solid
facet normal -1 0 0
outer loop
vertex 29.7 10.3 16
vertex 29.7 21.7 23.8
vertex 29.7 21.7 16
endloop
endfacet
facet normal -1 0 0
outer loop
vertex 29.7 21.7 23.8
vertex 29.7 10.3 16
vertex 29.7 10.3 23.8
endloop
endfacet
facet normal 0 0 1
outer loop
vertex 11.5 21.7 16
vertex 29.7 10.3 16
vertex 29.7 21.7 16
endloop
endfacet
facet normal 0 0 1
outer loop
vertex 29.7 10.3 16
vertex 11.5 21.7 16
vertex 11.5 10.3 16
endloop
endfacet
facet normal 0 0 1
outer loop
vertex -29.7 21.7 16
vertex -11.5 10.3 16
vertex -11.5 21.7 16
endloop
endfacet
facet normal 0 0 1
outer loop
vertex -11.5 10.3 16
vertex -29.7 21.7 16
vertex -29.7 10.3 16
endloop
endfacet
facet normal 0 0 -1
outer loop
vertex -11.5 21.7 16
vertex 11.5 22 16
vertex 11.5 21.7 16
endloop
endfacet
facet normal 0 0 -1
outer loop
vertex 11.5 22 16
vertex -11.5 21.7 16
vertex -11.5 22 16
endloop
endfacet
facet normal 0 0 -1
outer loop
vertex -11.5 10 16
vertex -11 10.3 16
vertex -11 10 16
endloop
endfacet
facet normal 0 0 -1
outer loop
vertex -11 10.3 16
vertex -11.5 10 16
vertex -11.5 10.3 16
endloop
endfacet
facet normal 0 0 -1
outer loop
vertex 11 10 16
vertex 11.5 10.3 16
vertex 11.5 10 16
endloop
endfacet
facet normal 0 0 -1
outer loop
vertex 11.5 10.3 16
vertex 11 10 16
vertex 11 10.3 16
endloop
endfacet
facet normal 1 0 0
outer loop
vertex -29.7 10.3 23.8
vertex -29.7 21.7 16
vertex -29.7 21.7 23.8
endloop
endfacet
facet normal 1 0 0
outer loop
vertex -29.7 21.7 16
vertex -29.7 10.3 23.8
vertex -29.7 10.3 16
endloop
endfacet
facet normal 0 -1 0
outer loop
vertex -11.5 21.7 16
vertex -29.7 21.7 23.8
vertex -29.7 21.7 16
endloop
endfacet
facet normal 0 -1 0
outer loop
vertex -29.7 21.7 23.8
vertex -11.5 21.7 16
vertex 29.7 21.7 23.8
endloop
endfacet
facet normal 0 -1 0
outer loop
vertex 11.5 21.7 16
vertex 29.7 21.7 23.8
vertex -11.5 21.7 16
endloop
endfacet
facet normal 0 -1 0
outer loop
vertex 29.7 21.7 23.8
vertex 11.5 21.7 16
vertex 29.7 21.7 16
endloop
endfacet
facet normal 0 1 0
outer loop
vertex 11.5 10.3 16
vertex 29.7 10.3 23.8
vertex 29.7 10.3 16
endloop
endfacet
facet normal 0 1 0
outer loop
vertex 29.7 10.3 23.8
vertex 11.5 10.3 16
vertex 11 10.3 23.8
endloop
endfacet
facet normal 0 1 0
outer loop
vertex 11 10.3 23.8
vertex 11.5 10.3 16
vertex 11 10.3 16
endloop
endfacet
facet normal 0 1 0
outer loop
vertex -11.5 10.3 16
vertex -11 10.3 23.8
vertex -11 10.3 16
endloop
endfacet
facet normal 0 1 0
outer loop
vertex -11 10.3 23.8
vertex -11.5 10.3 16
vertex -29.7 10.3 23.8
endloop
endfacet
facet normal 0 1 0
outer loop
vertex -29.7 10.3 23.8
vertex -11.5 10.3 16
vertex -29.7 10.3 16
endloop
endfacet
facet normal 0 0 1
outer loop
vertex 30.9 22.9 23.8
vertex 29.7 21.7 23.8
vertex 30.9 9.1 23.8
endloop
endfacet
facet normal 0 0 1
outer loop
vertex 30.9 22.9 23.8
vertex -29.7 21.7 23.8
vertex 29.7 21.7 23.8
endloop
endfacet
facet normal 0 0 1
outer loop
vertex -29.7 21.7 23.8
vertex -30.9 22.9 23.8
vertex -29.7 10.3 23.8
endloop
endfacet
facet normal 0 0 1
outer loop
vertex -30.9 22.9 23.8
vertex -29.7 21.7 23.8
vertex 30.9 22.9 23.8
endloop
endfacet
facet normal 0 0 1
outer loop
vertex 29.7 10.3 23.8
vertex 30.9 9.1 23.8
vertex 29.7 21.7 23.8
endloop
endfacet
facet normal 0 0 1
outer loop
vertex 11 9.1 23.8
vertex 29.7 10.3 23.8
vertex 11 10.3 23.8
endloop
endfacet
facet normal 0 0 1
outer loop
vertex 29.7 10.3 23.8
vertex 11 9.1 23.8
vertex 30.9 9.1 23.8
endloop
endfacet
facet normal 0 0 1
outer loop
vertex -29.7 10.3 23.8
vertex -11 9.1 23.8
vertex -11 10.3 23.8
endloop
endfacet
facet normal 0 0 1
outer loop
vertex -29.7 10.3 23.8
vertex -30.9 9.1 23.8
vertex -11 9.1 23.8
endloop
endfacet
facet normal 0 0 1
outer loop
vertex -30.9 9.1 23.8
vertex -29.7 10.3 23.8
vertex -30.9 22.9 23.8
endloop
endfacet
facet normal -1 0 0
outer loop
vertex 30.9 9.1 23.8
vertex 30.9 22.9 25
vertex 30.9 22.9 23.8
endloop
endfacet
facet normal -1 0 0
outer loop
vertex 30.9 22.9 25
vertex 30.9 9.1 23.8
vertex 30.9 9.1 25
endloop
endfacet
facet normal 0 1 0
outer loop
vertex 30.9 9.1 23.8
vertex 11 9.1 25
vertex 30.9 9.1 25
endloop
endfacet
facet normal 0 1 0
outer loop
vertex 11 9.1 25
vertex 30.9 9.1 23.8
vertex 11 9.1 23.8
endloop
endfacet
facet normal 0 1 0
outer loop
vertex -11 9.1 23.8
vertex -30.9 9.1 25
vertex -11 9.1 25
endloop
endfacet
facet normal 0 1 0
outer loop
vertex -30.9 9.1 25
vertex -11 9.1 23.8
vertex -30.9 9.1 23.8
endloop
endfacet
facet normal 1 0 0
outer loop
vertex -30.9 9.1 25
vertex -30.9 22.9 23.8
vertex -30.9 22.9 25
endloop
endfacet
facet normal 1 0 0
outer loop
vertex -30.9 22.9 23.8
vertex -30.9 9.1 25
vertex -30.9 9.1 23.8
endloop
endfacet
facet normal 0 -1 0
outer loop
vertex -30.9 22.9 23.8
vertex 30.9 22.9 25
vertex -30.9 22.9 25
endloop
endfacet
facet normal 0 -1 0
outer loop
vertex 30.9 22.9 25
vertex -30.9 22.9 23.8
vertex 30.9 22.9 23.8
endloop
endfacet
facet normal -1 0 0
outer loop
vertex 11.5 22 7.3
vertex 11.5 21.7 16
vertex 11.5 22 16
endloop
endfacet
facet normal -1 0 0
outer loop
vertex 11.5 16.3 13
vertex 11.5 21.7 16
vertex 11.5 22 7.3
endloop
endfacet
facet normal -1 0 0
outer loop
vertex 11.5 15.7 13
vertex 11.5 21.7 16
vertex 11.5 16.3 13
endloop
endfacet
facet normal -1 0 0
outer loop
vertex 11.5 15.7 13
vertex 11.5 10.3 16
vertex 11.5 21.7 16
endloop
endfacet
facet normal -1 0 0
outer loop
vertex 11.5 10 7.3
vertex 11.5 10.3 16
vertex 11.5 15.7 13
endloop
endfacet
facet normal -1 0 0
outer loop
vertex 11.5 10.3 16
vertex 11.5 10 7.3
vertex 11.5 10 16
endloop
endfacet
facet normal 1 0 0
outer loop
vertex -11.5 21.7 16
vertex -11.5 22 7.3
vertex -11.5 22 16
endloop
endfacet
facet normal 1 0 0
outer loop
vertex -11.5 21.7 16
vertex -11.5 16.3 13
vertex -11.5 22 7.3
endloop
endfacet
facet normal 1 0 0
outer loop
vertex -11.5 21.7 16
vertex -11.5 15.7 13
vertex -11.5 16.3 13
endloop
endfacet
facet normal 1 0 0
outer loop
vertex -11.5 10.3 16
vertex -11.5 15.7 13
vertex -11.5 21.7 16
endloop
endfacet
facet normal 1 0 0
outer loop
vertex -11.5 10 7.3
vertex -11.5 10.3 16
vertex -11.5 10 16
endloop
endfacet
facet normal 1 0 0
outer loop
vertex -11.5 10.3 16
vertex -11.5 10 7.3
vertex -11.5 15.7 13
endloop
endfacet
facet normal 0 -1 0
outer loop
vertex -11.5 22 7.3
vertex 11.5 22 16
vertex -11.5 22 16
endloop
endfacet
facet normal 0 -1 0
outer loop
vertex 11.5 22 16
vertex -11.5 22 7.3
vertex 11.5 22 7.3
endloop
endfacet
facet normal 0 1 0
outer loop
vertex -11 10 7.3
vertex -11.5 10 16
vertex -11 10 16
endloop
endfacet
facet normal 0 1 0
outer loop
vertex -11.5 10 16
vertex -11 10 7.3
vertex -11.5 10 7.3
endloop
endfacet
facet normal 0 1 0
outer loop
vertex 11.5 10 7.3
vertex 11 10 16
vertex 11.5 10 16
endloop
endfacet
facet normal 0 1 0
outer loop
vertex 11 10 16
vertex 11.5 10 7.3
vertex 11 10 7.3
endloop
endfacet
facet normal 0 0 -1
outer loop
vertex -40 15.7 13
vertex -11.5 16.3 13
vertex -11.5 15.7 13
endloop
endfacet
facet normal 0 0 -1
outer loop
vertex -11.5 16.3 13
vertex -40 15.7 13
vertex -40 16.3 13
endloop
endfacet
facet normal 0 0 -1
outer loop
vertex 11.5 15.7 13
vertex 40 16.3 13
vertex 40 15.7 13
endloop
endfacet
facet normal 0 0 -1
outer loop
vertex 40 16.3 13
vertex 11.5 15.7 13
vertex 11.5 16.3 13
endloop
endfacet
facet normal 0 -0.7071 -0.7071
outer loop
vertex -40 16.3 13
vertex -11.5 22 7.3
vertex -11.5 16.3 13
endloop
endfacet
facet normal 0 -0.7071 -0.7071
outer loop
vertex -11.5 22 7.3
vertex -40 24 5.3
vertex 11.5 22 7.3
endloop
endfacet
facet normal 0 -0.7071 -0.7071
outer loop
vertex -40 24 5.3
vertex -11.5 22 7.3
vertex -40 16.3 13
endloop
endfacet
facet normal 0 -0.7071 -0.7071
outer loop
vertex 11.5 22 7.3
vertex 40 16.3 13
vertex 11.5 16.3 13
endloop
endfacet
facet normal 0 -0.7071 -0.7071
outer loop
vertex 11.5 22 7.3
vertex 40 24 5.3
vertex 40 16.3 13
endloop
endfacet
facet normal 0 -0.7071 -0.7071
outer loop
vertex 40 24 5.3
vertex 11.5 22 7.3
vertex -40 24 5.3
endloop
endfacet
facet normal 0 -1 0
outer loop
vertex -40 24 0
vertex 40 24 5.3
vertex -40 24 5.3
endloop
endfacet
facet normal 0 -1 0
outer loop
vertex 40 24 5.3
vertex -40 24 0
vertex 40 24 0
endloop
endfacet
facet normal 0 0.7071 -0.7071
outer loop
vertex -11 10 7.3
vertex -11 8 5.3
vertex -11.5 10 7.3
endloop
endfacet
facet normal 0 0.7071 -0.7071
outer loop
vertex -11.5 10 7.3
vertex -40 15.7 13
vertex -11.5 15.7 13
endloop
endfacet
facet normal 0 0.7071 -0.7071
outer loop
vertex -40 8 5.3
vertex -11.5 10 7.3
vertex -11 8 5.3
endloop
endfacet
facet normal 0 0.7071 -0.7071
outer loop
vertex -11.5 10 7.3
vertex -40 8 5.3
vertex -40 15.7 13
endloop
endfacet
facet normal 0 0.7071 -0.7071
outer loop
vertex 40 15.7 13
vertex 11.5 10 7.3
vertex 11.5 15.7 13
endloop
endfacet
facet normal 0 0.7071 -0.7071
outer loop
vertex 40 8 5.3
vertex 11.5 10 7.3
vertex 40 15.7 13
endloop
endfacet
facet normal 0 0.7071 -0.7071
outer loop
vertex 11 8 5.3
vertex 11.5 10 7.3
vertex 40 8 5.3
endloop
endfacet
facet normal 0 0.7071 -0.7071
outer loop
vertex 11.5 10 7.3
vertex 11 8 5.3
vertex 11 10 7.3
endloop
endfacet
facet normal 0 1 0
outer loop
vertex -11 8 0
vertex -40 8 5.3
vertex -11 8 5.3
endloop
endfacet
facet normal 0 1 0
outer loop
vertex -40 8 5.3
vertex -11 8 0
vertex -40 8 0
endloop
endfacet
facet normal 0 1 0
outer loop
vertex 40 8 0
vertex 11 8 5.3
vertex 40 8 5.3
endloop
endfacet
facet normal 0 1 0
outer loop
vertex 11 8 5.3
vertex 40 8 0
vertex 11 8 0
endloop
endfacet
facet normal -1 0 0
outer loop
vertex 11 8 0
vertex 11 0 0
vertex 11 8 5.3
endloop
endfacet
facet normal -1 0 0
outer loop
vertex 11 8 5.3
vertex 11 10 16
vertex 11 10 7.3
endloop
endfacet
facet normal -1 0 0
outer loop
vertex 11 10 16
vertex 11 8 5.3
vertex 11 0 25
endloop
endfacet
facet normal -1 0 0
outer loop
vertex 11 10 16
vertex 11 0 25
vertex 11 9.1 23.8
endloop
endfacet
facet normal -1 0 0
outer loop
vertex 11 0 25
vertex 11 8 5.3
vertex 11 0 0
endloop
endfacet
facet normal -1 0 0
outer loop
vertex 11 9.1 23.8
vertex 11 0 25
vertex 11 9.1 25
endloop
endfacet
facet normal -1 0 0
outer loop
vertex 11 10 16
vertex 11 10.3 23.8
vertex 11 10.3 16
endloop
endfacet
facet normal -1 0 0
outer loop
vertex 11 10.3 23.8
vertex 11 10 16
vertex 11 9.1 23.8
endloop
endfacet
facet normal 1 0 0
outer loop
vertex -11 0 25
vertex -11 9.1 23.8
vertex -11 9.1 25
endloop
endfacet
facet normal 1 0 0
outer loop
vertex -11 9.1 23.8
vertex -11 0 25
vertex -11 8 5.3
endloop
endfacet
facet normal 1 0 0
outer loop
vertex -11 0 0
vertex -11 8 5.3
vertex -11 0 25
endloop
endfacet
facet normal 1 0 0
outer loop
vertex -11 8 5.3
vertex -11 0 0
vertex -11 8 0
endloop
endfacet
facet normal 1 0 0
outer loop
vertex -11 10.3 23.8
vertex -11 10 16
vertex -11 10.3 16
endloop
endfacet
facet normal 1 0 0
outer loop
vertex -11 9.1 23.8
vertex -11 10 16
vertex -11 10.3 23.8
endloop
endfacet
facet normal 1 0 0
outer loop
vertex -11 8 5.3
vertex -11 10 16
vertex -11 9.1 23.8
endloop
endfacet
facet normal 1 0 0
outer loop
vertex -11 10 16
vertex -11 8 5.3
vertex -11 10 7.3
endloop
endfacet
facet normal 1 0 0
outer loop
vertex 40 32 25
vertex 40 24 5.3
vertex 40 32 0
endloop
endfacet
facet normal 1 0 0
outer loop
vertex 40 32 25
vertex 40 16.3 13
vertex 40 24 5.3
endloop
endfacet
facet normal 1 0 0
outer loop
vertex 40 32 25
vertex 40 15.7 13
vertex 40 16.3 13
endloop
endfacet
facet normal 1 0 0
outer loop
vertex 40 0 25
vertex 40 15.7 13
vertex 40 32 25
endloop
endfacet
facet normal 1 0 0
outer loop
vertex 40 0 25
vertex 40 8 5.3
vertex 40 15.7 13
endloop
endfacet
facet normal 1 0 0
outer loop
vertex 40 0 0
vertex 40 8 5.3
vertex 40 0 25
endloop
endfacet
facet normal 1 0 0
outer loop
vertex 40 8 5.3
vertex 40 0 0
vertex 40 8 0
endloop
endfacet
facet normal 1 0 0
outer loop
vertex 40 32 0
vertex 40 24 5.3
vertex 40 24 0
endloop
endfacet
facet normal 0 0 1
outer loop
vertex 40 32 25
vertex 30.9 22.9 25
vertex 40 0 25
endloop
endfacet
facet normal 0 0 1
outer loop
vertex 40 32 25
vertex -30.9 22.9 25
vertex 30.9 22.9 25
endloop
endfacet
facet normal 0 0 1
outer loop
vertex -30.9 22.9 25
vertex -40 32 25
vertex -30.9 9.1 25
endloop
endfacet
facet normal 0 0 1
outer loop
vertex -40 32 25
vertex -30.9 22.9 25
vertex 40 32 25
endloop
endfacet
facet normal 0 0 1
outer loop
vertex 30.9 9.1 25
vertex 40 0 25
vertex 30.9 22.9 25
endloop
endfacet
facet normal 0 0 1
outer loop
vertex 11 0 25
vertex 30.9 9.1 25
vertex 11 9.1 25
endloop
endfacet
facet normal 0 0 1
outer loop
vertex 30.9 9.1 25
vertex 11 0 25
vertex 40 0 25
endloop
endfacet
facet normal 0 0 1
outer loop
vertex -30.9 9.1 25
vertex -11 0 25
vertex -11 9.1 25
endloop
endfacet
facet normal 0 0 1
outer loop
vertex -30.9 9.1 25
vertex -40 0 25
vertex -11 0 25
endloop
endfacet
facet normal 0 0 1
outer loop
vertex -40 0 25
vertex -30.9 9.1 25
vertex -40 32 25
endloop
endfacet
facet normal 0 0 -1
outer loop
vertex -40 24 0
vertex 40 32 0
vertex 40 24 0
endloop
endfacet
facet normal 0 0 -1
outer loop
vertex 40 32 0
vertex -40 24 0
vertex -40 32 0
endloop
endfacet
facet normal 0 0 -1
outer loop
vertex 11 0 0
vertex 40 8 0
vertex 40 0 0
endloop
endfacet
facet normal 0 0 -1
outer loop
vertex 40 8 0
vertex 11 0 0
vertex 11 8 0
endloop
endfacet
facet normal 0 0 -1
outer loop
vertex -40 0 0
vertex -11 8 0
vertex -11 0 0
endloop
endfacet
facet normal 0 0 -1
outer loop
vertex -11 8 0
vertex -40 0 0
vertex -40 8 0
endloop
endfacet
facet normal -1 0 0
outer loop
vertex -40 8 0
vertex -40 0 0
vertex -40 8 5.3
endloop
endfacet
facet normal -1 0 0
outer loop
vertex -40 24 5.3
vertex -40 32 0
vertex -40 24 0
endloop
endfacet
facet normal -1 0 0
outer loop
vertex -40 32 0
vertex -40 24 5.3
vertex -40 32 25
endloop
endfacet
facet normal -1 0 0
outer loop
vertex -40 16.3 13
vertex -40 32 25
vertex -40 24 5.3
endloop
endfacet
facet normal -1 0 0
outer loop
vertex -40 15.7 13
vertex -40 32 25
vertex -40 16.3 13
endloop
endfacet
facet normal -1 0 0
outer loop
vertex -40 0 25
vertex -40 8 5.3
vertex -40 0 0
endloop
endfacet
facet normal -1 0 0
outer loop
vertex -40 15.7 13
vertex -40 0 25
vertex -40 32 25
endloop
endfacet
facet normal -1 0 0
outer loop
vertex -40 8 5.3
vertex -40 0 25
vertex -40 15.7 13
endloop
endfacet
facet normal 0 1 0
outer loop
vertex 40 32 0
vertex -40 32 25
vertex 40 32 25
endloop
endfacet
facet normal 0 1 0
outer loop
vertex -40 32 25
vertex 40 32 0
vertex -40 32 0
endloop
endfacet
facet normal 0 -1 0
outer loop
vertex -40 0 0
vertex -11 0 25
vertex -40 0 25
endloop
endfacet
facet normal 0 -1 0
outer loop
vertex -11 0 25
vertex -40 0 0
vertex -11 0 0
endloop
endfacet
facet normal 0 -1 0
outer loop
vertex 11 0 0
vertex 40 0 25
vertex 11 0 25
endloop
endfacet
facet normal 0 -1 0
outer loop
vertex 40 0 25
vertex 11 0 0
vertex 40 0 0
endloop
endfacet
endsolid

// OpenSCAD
// ============================================================================
//  Parametric desk stand for a flat USB hub  (right-angle / "dogleg" USB-C cable)
// ============================================================================
//
//  A small solid block that holds a thin, flat USB hub upright on your desk so
//  the USB-C socket on its BOTTOM end stays plugged in and usable. Designed for
//  a right-angle USB-C cable: the plug drops into a cavity under the hub and the
//  cable turns and leaves through either side (or straight down).
//
//  There are lots of near-identical "flat stick" USB hubs with slightly
//  different sizes, so everything is parametric - measure yours and type the
//  numbers into the parameters below (OpenSCAD Customizer, or edit the file).
//
//  ---------------------------------------------------------------------------
//  WHAT TO MEASURE  (calipers; take the largest reading, incl. any moulding
//  seam or lip around the socket)
//  ---------------------------------------------------------------------------
//
//   SIDE view                        FRONT view
//                                     ___________________
//        ___                         |   ___________     |
//       |   |  hub (stands            |  |    hub    |    |
//       |   |  vertically, USB-C      |  |___________|    |
//       |   |  socket pointing        |  |         |  |=  |=  cable exits
//       |___|  DOWN)                  |  |  front  |  |   |   the side
//      __| |__   plug_body_*          |  |  slot   |  |   |
//     |plug   |  (right-angle         |  |         |  |   |
//     |_______|   USB-C plug)         |__|         |___|
//        | |___  cable turns          |____|_______|____|
//                                      block sits flat on the desk
//         (the front slot runs the full height, straight through - no roof)
//
//  ---------------------------------------------------------------------------
//  PRINTING
//  ---------------------------------------------------------------------------
//    * Orientation: as modelled — flat on the bed, hub slot facing up.
//    * Supports: NONE. The block sits flat (no feet), the plug cavity is open
//      top and bottom, the front access slot runs straight through top to
//      bottom (no roof), and the cable channel roof is a 45-deg gable. There
//      is no horizontal internal face anywhere.
//    * Material: PLA/PETG both fine. ~15-20% infill; the mass helps it not tip.
//    * If the hub is a tight or loose fit, adjust `hub_clearance` (see notes
//      there) and reprint — no other change needed.
//
//  ---------------------------------------------------------------------------
//  License: CC-BY 4.0  —  attribution appreciated, commercial use allowed.
//  ============================================================================


/* [Hub - measure the USB hub you want to hold] */

// Hub WIDTH: the long side of the rectangular end (mm)
hub_width = 59;         // [10:0.5:120]
// Hub THICKNESS: the short side of the rectangular end (mm)
hub_thickness = 11;     // [3:0.5:30]
// Hub LENGTH: tip to tip. Not critical - only used for the on-screen preview
hub_length = 110;       // [20:200]


/* [Right-angle USB-C cable plug] */

// Plug body WIDTH - across the hub's wide axis, i.e. parallel to hub_width (mm)
plug_body_width = 21;        // [6:0.5:40]
// Plug body THICKNESS - across the hub's thin axis, parallel to hub_thickness (mm)
plug_body_thickness = 10;    // [4:0.5:20]
// Plug body HEIGHT - how far the plug + strain relief hangs below the hub (mm)
plug_body_height = 16;       // [6:40]
// Cable DIAMETER - the bare cable just past the plug (mm)
cable_diameter = 6;          // [2:0.5:12]
// Height of the side channel the turned cable escapes through (mm). Taller =
// easier to get a finger in from the side to pull the plug out.
cable_channel_height = 13;    // [4:30]
// FRONT access slot: opens the whole front of the plug cavity (full height,
// straight through) so you can grab the plug to unplug it. Width in mm across
// the hub; 0 = no slot. Because it runs top-to-bottom it has no roof, so it
// needs no support.
front_slot_width = 22;       // [0:40]


/* [Holder body] */

// Overall WIDTH of the block (mm). Wider = more stable side to side.
block_width = 80;            // [30:200]
// Overall DEPTH of the block, front to back (mm). Deeper = harder to tip
// forward/back - increase this if a tall hub feels wobbly.
block_depth = 32;            // [16:80]
// How far the hub sinks into the block (mm). More = firmer grip, taller print.
pocket_depth = 9;            // [4:40]


/* [Fit and finish] */

// Total clearance added to the hub slot, split over both sides (mm).
// FDM printers shrink slots, so some is always needed. Start ~0.4; if the hub
// won't go in, go to 0.6-0.8; if it rattles, drop to 0.2-0.3.
hub_clearance = 0.4;         // [0:0.05:1.5]
// Total clearance around the plug body cavity (mm). Keep this loose - the hub
// socket should be what grips the plug, not the holder. 2 mm is a good start;
// raise it if the plug is still hard to pull out.
plug_clearance = 2.0;        // [0:0.1:4]
// Extra width added to the side cable channel beyond the plug (mm, total). More
// room for a finger / for the cable to move.
channel_extra_width = 4;     // [0:0.5:15]
// Lead-in chamfer around the mouth of the hub slot (mm)
mouth_chamfer = 1.2;         // [0:0.1:4]
// Retention bump on each side of the slot so the hub doesn't rattle (mm of
// interference per side). 0 = none. Raise for a light "click"; lower it back
// to 0 if you then can't seat the hub.
retention_nub = 0;           // [0:0.05:1]


/* [Quality] */

// Curve resolution (higher = smoother nubs/preview, slower)
fn = 48;                     // [16:8:120]


/* [Hidden] */

$fn = fn;
eps = 0.02;                  // tiny overlap to keep booleans clean

// ---- derived slot / cavity sizes -------------------------------------------
slot_w = hub_width     + hub_clearance;     // hub slot opening (X)
slot_d = hub_thickness + hub_clearance;     // hub slot opening (Y)

cav_w  = plug_body_width     + plug_clearance;   // plug cavity, across width (X)
cav_d  = plug_body_thickness + plug_clearance;   // plug cavity, front-to-back (Y)

// ---- heights (Z, 0 = desk surface; block sits flat) ----------------------
total_h   = plug_body_height + pocket_depth;  // overall height
cav_top_z = plug_body_height;                 // where the plug cavity meets the slot

// side cable channel: at least as tall as the cable, capped so a ledge remains
channel_h = min(max(cable_channel_height, cable_diameter + 1), cav_top_z - 2);
// side channel depth (Y): the plug cavity plus finger room
channel_d = cav_d + channel_extra_width;

// front access slot width, capped so the hub keeps front wall + ledge each side
front_slot_w = (front_slot_width > 0) ? min(front_slot_width, slot_w - 16) : 0;

// ---- positions (Y, 0 = front face, block_depth = back face) --------------
cav_y0    = (block_depth - cav_d) / 2;      // plug cavity, centred in the depth
cav_y1    = cav_y0 + cav_d;
ch_y0     = (block_depth - channel_d) / 2;  // side channel, same centre, wider
ch_y1     = ch_y0 + channel_d;
slot_cy   = block_depth / 2;                // hub slot sits above the cavity
slot_y0   = slot_cy - slot_d / 2;
slot_y1   = slot_cy + slot_d / 2;

// ---- sanity checks --------------------------------------------------------
assert(block_width  >= slot_w + 6,
       "block_width is too small for this hub - increase block_width");
assert(block_depth  >= channel_d + 6,
       "block_depth is too small for the cable channel - increase block_depth or reduce channel_extra_width");
assert(block_depth  >= slot_d + 4,
       "block_depth is too small for the hub slot - increase block_depth");
assert(cav_d >= cable_diameter,
       "plug_body_thickness is too small for the cable - the cable channel would pinch it");

echo(str("Holder outer size  : ", block_width, " x ", block_depth,
         " x ", total_h, " mm (W x D x H)"));
echo(str("Hub slot opening   : ", slot_w, " x ", slot_d, " mm"));
echo(str("Hub sticks up ~    : ", hub_length - pocket_depth, " mm above the slot"));


// ============================================================================
//  Geometry
// ============================================================================

// Solid block that everything is cut from. Sits flat on the desk - no feet, so
// there is no overhang underneath to support.
module block_body() {
    translate([-block_width/2, 0, 0])
        cube([block_width, block_depth, total_h]);
}

// The slot the hub drops into, plus a chamfered lead-in at the top.
module hub_slot() {
    translate([-slot_w/2, slot_y0, cav_top_z])
        cube([slot_w, slot_d, pocket_depth + eps]);

    if (mouth_chamfer > 0)
        translate([0, slot_cy, total_h - mouth_chamfer])
            linear_extrude(height = mouth_chamfer + eps)
                offset(delta = mouth_chamfer)
                    square([slot_w, slot_d], center = true);
}

// Cavity for the right-angle plug. Everything here is open to the bed and/or
// the hub slot, so there is nothing to support. The plug ends up reachable
// from the front and from both sides, which is what makes it easy to unplug.
//   * a straight-down pocket directly under the hub (also open through the base)
//   * a wide side channel, no floor, 45-deg gabled roof, exits both sides
//   * a full-height front access slot (see front_access_slot)
module plug_cavity() {
    // straight-down pocket - open through the bottom of the block
    translate([-cav_w/2, cav_y0, -eps])
        cube([cav_w, cav_d, plug_body_height + eps]);

    // side cable channel, no floor, 45-deg gabled roof (near-point ridge)
    z1 = channel_h;
    ch = min(channel_d/2 - 0.3, channel_h - 1.5);   // 45-deg chamfer on top edges
    translate([-block_width/2 - eps, 0, 0])
        rotate([0, 90, 0])
            linear_extrude(height = block_width + 2*eps)
                polygon([
                    [ eps,       ch_y0],
                    [ eps,       ch_y1],
                    [-(z1 - ch), ch_y1],
                    [-z1,        ch_y1 - ch],
                    [-z1,        ch_y0 + ch],
                    [-(z1 - ch), ch_y0],
                ]);

    front_access_slot();
}

// Opens the FRONT of the plug cavity so you can grab the plug to pull it out.
// It just removes the front WALL of the pocket over `front_slot_w`, for the
// FULL height of the block. Open at the front, the top and the bottom, so it
// has no roof and no floor - nothing to support. It takes a bite out of the
// middle of the hub slot's front lip; the lip each side still holds the (much
// wider) hub, and the back wall ties the two sides together.
module front_access_slot() {
    if (front_slot_w > 0)
        translate([-front_slot_w/2, -eps, -eps])
            cube([front_slot_w, cav_y0 + 1, total_h + 2*eps]);
}

// Optional cones that pinch the hub lightly so it does not rattle. The
// underside is ~45 deg, so they print without support.
module retention_nubs() {
    if (retention_nub > 0)
        for (sx = [-1, 1])
            translate([sx * (slot_w/2 + 1.5), slot_cy, cav_top_z + pocket_depth/2])
                rotate([0, -sx * 90, 0])
                    cylinder(h = retention_nub + 1.5, r1 = 2, r2 = 0);
}

module holder() {
    union() {
        difference() {
            block_body();
            hub_slot();
            plug_cavity();
        }
        retention_nubs();
    }
}

// ---- preview / render -----------------------------------------------------
// A parent file can set NO_AUTO_RENDER=true to include this without drawing.
if (is_undef(NO_AUTO_RENDER)) holder();
